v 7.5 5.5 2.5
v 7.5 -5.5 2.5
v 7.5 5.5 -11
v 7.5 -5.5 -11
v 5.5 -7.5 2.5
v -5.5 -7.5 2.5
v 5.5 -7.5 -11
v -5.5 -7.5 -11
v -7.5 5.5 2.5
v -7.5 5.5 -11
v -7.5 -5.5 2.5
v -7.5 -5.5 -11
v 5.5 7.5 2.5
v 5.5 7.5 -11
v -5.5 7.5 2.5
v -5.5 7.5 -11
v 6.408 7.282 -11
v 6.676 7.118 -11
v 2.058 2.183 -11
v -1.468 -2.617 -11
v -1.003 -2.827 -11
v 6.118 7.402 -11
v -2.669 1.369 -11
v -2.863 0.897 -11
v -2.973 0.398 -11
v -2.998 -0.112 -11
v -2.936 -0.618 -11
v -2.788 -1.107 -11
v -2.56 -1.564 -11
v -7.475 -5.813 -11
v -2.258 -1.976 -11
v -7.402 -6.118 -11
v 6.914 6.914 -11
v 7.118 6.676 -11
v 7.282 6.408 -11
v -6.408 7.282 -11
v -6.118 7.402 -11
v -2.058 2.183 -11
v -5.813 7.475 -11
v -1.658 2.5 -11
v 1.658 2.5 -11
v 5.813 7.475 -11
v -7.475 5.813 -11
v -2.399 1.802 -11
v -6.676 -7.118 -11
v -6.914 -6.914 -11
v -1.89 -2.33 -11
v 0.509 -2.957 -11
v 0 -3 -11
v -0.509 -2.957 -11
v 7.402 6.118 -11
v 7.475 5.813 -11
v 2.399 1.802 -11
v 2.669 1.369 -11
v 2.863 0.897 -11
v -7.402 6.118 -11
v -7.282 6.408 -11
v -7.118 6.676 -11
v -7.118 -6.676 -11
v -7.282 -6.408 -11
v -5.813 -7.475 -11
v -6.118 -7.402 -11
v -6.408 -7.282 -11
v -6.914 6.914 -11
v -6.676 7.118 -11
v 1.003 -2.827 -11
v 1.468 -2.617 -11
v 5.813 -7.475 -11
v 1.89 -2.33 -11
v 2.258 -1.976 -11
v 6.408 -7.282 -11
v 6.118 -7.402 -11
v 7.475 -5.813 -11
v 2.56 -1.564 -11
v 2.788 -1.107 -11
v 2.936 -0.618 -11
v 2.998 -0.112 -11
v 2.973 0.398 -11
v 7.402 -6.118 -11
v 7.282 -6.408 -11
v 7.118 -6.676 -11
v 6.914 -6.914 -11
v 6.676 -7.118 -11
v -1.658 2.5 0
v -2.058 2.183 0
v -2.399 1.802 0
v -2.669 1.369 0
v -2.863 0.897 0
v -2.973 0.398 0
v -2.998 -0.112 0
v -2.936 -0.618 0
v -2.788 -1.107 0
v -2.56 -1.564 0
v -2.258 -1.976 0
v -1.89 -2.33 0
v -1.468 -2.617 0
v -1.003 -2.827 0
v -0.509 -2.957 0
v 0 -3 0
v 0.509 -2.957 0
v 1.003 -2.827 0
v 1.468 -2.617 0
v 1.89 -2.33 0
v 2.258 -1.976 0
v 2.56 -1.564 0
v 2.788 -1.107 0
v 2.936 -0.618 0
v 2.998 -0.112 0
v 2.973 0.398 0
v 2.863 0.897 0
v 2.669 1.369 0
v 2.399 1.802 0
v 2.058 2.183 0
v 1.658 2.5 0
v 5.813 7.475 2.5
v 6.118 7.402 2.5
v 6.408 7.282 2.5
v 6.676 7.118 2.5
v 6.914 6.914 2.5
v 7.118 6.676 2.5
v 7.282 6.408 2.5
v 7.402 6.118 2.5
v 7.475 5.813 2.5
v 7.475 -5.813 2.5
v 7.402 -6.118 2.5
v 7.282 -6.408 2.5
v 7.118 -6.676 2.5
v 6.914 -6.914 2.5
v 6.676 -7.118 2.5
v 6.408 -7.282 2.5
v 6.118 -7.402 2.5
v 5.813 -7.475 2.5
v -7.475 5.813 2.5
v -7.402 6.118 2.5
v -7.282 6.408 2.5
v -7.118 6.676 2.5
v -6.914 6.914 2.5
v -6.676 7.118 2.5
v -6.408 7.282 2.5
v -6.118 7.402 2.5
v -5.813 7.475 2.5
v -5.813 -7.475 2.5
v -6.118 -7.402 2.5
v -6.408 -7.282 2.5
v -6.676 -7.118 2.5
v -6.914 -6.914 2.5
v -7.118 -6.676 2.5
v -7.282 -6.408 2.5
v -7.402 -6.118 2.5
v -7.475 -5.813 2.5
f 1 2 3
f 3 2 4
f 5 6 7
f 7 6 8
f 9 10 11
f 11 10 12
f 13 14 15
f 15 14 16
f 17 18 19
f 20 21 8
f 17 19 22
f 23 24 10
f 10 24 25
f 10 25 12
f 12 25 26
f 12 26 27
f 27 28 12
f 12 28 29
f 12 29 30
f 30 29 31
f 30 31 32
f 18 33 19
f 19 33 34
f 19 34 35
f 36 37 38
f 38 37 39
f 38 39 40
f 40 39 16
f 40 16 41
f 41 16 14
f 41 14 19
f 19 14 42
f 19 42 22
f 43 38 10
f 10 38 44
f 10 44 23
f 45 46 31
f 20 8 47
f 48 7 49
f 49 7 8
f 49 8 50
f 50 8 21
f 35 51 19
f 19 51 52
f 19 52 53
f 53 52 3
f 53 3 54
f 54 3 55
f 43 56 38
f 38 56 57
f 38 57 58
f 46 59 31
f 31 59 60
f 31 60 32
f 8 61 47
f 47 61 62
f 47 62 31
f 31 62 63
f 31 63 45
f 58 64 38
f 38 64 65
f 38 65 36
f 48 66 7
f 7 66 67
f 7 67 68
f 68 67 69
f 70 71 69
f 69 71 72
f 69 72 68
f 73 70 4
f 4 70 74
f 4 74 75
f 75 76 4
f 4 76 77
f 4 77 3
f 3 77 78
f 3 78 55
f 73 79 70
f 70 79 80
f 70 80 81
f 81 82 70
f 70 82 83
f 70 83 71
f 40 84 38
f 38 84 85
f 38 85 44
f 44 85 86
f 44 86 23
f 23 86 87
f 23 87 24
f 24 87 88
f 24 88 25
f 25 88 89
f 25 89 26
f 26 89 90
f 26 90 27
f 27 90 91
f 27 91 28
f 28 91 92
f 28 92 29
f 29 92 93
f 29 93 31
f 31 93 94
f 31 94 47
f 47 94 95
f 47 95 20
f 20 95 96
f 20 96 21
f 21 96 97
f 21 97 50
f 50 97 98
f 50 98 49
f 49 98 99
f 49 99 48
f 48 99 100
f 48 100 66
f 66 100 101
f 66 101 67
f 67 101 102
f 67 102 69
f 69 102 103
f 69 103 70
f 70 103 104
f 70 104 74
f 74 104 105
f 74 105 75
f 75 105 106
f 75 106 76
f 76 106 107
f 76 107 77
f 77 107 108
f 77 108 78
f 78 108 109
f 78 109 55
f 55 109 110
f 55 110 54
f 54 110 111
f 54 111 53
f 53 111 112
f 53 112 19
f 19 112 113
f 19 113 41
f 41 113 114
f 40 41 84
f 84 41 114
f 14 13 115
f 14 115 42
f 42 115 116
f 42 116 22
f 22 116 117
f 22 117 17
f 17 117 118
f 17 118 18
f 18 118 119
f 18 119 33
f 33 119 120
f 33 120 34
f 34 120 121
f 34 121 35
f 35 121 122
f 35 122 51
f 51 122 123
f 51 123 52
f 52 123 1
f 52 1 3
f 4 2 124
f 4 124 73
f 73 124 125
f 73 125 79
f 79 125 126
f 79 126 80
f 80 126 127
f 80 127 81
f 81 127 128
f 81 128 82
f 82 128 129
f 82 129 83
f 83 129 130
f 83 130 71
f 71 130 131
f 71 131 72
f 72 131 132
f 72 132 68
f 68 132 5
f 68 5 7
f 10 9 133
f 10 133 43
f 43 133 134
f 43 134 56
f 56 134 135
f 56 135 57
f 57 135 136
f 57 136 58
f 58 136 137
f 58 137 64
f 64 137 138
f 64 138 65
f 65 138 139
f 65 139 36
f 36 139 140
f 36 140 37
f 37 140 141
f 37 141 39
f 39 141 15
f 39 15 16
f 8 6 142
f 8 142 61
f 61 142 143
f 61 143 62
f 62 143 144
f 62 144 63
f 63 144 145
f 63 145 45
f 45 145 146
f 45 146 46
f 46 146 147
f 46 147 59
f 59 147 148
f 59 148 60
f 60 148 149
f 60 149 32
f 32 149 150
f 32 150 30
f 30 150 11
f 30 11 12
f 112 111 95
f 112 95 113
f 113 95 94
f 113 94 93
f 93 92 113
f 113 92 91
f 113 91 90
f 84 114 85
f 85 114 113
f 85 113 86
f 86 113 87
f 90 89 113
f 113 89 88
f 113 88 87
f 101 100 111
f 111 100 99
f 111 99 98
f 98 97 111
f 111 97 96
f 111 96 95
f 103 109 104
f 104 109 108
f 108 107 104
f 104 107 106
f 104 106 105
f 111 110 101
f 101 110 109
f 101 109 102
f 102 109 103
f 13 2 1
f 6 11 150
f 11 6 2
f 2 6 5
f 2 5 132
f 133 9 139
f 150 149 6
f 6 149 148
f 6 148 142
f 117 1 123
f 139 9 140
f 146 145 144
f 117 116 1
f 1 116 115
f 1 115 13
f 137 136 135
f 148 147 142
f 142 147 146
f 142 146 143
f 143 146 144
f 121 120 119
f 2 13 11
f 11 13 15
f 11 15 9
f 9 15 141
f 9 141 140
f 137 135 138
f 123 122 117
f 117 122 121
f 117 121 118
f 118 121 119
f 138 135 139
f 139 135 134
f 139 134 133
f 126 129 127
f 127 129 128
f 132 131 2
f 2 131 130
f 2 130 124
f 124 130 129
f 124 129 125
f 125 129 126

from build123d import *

# Parameters (mm, degrees)
SKETCH1_W           = 15
SKETCH1_H           = 15
BOSS_EXTRUDE1_DEPTH = 11
FILLET1_R           = 2
BOSS_EXTRUDE2_DEPTH = 2.5


with BuildPart() as part:
    # Sketch1 → Boss-Extrude1 (new body)
    with BuildSketch(Plane.XY):
        Rectangle(SKETCH1_W, SKETCH1_H)
        with BuildLine():
            Line((-1.658312395, 2.5), (1.658312395, 2.5))
            ThreePointArc((1.658312395, 2.5), (0, -3), (-1.658312395, 2.5))
        make_face(mode=Mode.SUBTRACT)
    extrude(amount=-BOSS_EXTRUDE1_DEPTH)

    # Fillet1
    fillet1_edges = [part.edges().sort_by_distance(p)[0] for p in [
        (7.5, -7.5, -5.5),
        (-7.5, -7.5, -5.5),
        (-7.5, 7.5, -5.5),
        (7.5, 7.5, -5.5),
    ]]
    fillet(fillet1_edges, radius=FILLET1_R)

    # Sketch2 → Boss-Extrude2 (add)
    with BuildSketch(Plane.XY):
        with BuildLine():
            Line((7.5, -5.5), (7.5, 5.5))
            ThreePointArc((7.5, 5.5), (6.914213562, 6.914213562), (5.5, 7.5))
            Line((5.5, 7.5), (-5.5, 7.5))
            ThreePointArc((-5.5, 7.5), (-6.914213562, 6.914213562), (-7.5, 5.5))
            Line((-7.5, 5.5), (-7.5, -5.5))
            ThreePointArc((-7.5, -5.5), (-6.914213562, -6.914213562), (-5.5, -7.5))
            Line((-5.5, -7.5), (5.5, -7.5))
            ThreePointArc((5.5, -7.5), (6.914213562, -6.914213562), (7.5, -5.5))
        make_face()
    extrude(amount=BOSS_EXTRUDE2_DEPTH)


solid = part.part
